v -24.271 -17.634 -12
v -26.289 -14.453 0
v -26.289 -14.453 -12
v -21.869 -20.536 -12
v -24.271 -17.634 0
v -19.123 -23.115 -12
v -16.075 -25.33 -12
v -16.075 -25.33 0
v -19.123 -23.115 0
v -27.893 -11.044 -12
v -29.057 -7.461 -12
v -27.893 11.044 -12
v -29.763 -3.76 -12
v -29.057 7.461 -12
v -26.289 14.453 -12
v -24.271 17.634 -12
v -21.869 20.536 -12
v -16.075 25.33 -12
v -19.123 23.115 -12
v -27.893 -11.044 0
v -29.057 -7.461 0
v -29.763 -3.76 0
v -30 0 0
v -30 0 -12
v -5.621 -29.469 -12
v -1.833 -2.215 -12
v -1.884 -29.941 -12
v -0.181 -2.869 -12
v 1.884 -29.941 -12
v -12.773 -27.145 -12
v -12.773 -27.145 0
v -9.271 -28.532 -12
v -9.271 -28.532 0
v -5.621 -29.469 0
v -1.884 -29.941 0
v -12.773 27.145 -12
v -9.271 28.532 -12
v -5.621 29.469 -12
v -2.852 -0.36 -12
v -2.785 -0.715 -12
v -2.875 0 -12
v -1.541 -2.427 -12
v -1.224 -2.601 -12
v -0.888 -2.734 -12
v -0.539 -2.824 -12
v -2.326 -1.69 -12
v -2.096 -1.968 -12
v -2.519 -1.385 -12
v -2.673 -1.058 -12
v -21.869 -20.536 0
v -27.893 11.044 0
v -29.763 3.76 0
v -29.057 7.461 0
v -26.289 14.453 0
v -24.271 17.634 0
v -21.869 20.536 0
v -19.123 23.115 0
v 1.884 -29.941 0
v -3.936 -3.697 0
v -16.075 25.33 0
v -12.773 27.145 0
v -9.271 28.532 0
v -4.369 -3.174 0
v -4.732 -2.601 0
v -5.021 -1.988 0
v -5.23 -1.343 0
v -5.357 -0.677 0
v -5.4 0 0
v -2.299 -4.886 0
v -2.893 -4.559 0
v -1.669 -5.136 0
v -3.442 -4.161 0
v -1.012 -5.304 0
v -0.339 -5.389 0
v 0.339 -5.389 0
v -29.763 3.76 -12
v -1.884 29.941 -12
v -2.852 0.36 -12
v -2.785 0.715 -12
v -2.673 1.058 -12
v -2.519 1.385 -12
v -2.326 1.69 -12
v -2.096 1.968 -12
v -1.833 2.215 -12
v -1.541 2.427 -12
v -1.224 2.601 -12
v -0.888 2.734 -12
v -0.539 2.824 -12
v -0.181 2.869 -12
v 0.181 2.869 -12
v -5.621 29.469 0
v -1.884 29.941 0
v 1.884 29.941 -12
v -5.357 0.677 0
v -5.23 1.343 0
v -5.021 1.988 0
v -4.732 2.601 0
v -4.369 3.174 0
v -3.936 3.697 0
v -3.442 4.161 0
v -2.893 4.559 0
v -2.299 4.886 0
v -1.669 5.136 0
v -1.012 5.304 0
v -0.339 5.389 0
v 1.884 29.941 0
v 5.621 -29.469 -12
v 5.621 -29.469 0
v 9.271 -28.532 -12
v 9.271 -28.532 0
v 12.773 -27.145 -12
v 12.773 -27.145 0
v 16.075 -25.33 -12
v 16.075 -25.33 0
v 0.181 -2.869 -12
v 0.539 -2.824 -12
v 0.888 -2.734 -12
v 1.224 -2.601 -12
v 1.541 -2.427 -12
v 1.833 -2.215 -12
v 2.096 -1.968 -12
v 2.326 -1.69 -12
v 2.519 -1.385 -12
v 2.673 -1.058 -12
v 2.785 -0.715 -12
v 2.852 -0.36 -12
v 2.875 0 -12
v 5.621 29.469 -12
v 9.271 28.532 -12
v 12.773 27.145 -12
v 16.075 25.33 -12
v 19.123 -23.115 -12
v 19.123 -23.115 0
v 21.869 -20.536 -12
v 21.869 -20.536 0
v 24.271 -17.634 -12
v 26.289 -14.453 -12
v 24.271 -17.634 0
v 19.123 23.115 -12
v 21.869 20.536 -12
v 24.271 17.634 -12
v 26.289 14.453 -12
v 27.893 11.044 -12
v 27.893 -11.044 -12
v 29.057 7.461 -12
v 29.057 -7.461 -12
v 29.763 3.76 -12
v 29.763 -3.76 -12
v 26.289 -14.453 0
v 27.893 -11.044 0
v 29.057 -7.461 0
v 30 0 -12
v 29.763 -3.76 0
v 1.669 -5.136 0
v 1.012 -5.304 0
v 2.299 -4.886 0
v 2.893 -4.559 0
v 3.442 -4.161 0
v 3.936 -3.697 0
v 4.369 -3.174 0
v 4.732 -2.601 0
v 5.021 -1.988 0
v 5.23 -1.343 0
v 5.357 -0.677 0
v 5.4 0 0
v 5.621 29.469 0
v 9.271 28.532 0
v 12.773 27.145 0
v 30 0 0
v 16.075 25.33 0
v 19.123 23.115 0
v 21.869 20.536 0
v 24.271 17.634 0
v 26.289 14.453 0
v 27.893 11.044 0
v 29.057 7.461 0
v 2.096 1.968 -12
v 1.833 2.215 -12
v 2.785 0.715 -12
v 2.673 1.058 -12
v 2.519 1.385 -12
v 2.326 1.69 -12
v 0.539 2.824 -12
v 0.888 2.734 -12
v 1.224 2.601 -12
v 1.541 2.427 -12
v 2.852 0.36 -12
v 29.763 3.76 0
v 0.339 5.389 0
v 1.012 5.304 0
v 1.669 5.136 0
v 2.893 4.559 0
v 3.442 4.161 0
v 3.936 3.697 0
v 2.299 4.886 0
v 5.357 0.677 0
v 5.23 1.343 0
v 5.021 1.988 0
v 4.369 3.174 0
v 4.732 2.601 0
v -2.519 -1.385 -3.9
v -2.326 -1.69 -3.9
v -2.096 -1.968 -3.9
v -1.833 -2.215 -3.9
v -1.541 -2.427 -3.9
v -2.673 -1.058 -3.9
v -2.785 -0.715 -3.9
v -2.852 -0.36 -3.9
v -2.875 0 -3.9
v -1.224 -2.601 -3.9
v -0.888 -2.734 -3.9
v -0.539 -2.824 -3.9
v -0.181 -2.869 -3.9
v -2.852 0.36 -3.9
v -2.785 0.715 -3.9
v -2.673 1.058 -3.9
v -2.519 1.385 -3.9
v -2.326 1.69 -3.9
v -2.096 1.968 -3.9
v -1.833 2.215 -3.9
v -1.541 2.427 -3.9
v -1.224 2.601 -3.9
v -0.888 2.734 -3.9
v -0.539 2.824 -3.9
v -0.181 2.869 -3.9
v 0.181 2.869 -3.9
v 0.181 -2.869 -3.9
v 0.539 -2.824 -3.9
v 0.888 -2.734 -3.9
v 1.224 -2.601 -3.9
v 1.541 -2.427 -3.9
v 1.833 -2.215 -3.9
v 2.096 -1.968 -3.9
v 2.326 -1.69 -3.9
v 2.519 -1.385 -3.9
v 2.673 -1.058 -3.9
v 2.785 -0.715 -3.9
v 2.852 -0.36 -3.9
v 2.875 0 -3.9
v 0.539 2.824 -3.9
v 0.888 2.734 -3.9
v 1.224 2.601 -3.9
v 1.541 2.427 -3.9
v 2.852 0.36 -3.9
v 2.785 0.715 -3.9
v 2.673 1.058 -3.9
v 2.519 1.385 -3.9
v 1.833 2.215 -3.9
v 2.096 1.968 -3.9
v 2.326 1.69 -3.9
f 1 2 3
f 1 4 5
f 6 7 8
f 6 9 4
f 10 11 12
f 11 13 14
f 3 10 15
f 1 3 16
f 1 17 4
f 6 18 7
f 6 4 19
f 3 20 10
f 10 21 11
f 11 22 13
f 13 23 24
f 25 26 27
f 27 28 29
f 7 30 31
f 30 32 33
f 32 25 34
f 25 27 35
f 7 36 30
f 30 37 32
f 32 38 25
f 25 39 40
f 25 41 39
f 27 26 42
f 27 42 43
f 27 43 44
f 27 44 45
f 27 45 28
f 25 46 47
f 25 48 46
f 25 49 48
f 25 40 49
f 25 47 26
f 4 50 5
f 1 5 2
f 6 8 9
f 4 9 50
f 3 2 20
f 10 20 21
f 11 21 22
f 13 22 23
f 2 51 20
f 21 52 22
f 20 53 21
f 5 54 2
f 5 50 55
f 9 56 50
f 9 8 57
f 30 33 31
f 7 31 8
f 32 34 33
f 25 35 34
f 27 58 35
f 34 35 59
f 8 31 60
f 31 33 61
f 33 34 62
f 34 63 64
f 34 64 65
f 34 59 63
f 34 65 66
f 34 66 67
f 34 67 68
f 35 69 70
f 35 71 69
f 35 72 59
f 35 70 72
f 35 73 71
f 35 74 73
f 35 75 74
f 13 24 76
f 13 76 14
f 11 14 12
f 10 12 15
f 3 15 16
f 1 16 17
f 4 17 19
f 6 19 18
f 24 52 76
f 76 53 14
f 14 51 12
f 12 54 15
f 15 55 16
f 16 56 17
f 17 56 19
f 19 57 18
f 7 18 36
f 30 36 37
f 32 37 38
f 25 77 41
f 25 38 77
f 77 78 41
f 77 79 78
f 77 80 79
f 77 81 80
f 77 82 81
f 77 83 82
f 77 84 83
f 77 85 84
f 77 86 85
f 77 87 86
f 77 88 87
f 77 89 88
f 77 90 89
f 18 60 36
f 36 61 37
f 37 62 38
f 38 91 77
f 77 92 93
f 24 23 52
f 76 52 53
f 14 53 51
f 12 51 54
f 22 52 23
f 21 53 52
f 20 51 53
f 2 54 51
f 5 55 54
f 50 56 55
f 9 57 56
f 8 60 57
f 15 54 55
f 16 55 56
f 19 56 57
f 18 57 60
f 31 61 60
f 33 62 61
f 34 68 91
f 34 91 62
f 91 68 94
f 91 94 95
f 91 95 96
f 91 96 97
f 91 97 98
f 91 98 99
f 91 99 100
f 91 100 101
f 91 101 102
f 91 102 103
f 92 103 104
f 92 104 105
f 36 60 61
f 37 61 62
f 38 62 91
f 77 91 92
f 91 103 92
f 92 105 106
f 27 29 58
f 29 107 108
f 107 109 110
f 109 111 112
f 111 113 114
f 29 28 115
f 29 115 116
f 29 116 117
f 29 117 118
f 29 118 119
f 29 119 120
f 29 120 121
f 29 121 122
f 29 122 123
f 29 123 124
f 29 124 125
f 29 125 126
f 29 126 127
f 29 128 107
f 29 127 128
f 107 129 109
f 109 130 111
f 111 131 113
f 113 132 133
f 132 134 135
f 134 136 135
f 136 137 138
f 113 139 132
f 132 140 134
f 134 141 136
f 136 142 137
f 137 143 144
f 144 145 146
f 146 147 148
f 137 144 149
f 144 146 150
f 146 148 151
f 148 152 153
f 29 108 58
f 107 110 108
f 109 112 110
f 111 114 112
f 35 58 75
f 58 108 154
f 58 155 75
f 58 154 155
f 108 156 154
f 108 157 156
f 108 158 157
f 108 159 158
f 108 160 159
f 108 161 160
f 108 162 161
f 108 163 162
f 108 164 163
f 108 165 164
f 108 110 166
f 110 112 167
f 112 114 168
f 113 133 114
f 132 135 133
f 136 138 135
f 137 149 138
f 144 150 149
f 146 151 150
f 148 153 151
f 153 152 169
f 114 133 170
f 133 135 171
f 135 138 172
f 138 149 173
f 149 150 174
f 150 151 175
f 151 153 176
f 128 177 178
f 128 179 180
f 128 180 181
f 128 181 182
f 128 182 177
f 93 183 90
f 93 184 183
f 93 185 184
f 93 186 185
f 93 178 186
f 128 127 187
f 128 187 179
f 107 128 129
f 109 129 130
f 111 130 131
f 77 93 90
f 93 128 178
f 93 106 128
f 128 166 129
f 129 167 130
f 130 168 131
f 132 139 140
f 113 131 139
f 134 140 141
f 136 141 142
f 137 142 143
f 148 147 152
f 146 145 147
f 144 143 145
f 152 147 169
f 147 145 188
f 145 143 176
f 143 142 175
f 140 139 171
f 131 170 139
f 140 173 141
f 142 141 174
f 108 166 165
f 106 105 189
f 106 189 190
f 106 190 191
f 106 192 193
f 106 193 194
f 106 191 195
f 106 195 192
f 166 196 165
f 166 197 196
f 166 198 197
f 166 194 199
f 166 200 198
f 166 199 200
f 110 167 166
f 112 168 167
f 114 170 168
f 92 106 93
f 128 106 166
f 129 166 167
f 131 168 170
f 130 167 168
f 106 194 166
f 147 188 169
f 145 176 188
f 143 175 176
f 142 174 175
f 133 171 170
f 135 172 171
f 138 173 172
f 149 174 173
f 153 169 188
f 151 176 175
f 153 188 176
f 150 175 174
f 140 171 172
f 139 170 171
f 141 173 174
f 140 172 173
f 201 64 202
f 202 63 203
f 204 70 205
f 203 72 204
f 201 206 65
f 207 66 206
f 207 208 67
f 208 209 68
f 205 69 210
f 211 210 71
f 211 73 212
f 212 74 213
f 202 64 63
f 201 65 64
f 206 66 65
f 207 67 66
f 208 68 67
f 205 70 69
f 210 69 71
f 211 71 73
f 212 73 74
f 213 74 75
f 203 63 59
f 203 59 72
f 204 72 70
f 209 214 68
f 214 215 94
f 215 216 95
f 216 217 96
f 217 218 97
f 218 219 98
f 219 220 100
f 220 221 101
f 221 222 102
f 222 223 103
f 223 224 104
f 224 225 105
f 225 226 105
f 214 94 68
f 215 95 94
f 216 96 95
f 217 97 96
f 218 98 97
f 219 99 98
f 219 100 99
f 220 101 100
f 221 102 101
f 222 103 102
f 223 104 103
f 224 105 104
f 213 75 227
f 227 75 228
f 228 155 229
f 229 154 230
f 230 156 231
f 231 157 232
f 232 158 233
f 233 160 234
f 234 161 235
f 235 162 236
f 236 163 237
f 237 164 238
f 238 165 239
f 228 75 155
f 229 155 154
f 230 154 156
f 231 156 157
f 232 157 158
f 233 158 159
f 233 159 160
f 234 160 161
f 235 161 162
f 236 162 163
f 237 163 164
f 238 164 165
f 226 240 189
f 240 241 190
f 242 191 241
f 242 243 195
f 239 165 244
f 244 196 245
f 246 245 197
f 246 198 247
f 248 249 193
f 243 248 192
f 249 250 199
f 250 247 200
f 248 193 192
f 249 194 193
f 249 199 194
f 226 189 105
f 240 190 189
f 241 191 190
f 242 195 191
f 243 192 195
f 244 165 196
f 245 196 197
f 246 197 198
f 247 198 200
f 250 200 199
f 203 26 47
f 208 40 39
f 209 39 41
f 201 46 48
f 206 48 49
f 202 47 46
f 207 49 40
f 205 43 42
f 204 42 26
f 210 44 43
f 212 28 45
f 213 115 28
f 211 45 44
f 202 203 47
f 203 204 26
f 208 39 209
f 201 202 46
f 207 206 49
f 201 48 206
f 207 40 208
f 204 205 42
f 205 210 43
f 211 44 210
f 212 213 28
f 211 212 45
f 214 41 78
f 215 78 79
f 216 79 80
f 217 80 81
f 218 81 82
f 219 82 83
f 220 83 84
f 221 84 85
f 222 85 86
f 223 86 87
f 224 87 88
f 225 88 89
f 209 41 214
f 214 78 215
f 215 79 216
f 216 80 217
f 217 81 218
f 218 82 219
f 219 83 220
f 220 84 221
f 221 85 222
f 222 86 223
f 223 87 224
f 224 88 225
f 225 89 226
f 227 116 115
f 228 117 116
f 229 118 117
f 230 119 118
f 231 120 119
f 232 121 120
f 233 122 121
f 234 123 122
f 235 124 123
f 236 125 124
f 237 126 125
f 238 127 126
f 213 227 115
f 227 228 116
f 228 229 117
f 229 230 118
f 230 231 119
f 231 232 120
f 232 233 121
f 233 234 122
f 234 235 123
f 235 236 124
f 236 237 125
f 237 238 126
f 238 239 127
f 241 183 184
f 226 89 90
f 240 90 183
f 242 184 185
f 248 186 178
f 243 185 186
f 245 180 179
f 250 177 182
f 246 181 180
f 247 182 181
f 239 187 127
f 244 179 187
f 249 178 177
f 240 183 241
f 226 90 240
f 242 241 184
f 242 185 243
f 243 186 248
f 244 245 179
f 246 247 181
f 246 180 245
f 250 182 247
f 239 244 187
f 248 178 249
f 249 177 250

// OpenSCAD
$fn = 50;

difference() {
	union() {
		translate(v = [0, 0, -12.0]) {
			cylinder(h = 12, r = 30.0);
		}
		#translate(v = [0, 0, -15.0]) {
			cylinder(h = 15, r = 2.875);
		}
	}
	union() {
		translate(v = [0, 0, 0]) {
			rotate(a = [0, 0, 0]) {
				difference() {
					union() {
						translate(v = [0, 0, -15.0]) {
							cylinder(h = 15, r = 2.6);
						}
						translate(v = [0, 0, -3.9]) {
							cylinder(h = 3.9, r1 = 2.875, r2 = 5.4);
						}
						translate(v = [0, 0, -15.0]) {
							cylinder(h = 15, r = 2.875);
						}
						translate(v = [0, 0, -15.0]) {
							cylinder(h = 15, r = 2.6);
						}
					}
					union();
				}
			}
		}
	}
}
